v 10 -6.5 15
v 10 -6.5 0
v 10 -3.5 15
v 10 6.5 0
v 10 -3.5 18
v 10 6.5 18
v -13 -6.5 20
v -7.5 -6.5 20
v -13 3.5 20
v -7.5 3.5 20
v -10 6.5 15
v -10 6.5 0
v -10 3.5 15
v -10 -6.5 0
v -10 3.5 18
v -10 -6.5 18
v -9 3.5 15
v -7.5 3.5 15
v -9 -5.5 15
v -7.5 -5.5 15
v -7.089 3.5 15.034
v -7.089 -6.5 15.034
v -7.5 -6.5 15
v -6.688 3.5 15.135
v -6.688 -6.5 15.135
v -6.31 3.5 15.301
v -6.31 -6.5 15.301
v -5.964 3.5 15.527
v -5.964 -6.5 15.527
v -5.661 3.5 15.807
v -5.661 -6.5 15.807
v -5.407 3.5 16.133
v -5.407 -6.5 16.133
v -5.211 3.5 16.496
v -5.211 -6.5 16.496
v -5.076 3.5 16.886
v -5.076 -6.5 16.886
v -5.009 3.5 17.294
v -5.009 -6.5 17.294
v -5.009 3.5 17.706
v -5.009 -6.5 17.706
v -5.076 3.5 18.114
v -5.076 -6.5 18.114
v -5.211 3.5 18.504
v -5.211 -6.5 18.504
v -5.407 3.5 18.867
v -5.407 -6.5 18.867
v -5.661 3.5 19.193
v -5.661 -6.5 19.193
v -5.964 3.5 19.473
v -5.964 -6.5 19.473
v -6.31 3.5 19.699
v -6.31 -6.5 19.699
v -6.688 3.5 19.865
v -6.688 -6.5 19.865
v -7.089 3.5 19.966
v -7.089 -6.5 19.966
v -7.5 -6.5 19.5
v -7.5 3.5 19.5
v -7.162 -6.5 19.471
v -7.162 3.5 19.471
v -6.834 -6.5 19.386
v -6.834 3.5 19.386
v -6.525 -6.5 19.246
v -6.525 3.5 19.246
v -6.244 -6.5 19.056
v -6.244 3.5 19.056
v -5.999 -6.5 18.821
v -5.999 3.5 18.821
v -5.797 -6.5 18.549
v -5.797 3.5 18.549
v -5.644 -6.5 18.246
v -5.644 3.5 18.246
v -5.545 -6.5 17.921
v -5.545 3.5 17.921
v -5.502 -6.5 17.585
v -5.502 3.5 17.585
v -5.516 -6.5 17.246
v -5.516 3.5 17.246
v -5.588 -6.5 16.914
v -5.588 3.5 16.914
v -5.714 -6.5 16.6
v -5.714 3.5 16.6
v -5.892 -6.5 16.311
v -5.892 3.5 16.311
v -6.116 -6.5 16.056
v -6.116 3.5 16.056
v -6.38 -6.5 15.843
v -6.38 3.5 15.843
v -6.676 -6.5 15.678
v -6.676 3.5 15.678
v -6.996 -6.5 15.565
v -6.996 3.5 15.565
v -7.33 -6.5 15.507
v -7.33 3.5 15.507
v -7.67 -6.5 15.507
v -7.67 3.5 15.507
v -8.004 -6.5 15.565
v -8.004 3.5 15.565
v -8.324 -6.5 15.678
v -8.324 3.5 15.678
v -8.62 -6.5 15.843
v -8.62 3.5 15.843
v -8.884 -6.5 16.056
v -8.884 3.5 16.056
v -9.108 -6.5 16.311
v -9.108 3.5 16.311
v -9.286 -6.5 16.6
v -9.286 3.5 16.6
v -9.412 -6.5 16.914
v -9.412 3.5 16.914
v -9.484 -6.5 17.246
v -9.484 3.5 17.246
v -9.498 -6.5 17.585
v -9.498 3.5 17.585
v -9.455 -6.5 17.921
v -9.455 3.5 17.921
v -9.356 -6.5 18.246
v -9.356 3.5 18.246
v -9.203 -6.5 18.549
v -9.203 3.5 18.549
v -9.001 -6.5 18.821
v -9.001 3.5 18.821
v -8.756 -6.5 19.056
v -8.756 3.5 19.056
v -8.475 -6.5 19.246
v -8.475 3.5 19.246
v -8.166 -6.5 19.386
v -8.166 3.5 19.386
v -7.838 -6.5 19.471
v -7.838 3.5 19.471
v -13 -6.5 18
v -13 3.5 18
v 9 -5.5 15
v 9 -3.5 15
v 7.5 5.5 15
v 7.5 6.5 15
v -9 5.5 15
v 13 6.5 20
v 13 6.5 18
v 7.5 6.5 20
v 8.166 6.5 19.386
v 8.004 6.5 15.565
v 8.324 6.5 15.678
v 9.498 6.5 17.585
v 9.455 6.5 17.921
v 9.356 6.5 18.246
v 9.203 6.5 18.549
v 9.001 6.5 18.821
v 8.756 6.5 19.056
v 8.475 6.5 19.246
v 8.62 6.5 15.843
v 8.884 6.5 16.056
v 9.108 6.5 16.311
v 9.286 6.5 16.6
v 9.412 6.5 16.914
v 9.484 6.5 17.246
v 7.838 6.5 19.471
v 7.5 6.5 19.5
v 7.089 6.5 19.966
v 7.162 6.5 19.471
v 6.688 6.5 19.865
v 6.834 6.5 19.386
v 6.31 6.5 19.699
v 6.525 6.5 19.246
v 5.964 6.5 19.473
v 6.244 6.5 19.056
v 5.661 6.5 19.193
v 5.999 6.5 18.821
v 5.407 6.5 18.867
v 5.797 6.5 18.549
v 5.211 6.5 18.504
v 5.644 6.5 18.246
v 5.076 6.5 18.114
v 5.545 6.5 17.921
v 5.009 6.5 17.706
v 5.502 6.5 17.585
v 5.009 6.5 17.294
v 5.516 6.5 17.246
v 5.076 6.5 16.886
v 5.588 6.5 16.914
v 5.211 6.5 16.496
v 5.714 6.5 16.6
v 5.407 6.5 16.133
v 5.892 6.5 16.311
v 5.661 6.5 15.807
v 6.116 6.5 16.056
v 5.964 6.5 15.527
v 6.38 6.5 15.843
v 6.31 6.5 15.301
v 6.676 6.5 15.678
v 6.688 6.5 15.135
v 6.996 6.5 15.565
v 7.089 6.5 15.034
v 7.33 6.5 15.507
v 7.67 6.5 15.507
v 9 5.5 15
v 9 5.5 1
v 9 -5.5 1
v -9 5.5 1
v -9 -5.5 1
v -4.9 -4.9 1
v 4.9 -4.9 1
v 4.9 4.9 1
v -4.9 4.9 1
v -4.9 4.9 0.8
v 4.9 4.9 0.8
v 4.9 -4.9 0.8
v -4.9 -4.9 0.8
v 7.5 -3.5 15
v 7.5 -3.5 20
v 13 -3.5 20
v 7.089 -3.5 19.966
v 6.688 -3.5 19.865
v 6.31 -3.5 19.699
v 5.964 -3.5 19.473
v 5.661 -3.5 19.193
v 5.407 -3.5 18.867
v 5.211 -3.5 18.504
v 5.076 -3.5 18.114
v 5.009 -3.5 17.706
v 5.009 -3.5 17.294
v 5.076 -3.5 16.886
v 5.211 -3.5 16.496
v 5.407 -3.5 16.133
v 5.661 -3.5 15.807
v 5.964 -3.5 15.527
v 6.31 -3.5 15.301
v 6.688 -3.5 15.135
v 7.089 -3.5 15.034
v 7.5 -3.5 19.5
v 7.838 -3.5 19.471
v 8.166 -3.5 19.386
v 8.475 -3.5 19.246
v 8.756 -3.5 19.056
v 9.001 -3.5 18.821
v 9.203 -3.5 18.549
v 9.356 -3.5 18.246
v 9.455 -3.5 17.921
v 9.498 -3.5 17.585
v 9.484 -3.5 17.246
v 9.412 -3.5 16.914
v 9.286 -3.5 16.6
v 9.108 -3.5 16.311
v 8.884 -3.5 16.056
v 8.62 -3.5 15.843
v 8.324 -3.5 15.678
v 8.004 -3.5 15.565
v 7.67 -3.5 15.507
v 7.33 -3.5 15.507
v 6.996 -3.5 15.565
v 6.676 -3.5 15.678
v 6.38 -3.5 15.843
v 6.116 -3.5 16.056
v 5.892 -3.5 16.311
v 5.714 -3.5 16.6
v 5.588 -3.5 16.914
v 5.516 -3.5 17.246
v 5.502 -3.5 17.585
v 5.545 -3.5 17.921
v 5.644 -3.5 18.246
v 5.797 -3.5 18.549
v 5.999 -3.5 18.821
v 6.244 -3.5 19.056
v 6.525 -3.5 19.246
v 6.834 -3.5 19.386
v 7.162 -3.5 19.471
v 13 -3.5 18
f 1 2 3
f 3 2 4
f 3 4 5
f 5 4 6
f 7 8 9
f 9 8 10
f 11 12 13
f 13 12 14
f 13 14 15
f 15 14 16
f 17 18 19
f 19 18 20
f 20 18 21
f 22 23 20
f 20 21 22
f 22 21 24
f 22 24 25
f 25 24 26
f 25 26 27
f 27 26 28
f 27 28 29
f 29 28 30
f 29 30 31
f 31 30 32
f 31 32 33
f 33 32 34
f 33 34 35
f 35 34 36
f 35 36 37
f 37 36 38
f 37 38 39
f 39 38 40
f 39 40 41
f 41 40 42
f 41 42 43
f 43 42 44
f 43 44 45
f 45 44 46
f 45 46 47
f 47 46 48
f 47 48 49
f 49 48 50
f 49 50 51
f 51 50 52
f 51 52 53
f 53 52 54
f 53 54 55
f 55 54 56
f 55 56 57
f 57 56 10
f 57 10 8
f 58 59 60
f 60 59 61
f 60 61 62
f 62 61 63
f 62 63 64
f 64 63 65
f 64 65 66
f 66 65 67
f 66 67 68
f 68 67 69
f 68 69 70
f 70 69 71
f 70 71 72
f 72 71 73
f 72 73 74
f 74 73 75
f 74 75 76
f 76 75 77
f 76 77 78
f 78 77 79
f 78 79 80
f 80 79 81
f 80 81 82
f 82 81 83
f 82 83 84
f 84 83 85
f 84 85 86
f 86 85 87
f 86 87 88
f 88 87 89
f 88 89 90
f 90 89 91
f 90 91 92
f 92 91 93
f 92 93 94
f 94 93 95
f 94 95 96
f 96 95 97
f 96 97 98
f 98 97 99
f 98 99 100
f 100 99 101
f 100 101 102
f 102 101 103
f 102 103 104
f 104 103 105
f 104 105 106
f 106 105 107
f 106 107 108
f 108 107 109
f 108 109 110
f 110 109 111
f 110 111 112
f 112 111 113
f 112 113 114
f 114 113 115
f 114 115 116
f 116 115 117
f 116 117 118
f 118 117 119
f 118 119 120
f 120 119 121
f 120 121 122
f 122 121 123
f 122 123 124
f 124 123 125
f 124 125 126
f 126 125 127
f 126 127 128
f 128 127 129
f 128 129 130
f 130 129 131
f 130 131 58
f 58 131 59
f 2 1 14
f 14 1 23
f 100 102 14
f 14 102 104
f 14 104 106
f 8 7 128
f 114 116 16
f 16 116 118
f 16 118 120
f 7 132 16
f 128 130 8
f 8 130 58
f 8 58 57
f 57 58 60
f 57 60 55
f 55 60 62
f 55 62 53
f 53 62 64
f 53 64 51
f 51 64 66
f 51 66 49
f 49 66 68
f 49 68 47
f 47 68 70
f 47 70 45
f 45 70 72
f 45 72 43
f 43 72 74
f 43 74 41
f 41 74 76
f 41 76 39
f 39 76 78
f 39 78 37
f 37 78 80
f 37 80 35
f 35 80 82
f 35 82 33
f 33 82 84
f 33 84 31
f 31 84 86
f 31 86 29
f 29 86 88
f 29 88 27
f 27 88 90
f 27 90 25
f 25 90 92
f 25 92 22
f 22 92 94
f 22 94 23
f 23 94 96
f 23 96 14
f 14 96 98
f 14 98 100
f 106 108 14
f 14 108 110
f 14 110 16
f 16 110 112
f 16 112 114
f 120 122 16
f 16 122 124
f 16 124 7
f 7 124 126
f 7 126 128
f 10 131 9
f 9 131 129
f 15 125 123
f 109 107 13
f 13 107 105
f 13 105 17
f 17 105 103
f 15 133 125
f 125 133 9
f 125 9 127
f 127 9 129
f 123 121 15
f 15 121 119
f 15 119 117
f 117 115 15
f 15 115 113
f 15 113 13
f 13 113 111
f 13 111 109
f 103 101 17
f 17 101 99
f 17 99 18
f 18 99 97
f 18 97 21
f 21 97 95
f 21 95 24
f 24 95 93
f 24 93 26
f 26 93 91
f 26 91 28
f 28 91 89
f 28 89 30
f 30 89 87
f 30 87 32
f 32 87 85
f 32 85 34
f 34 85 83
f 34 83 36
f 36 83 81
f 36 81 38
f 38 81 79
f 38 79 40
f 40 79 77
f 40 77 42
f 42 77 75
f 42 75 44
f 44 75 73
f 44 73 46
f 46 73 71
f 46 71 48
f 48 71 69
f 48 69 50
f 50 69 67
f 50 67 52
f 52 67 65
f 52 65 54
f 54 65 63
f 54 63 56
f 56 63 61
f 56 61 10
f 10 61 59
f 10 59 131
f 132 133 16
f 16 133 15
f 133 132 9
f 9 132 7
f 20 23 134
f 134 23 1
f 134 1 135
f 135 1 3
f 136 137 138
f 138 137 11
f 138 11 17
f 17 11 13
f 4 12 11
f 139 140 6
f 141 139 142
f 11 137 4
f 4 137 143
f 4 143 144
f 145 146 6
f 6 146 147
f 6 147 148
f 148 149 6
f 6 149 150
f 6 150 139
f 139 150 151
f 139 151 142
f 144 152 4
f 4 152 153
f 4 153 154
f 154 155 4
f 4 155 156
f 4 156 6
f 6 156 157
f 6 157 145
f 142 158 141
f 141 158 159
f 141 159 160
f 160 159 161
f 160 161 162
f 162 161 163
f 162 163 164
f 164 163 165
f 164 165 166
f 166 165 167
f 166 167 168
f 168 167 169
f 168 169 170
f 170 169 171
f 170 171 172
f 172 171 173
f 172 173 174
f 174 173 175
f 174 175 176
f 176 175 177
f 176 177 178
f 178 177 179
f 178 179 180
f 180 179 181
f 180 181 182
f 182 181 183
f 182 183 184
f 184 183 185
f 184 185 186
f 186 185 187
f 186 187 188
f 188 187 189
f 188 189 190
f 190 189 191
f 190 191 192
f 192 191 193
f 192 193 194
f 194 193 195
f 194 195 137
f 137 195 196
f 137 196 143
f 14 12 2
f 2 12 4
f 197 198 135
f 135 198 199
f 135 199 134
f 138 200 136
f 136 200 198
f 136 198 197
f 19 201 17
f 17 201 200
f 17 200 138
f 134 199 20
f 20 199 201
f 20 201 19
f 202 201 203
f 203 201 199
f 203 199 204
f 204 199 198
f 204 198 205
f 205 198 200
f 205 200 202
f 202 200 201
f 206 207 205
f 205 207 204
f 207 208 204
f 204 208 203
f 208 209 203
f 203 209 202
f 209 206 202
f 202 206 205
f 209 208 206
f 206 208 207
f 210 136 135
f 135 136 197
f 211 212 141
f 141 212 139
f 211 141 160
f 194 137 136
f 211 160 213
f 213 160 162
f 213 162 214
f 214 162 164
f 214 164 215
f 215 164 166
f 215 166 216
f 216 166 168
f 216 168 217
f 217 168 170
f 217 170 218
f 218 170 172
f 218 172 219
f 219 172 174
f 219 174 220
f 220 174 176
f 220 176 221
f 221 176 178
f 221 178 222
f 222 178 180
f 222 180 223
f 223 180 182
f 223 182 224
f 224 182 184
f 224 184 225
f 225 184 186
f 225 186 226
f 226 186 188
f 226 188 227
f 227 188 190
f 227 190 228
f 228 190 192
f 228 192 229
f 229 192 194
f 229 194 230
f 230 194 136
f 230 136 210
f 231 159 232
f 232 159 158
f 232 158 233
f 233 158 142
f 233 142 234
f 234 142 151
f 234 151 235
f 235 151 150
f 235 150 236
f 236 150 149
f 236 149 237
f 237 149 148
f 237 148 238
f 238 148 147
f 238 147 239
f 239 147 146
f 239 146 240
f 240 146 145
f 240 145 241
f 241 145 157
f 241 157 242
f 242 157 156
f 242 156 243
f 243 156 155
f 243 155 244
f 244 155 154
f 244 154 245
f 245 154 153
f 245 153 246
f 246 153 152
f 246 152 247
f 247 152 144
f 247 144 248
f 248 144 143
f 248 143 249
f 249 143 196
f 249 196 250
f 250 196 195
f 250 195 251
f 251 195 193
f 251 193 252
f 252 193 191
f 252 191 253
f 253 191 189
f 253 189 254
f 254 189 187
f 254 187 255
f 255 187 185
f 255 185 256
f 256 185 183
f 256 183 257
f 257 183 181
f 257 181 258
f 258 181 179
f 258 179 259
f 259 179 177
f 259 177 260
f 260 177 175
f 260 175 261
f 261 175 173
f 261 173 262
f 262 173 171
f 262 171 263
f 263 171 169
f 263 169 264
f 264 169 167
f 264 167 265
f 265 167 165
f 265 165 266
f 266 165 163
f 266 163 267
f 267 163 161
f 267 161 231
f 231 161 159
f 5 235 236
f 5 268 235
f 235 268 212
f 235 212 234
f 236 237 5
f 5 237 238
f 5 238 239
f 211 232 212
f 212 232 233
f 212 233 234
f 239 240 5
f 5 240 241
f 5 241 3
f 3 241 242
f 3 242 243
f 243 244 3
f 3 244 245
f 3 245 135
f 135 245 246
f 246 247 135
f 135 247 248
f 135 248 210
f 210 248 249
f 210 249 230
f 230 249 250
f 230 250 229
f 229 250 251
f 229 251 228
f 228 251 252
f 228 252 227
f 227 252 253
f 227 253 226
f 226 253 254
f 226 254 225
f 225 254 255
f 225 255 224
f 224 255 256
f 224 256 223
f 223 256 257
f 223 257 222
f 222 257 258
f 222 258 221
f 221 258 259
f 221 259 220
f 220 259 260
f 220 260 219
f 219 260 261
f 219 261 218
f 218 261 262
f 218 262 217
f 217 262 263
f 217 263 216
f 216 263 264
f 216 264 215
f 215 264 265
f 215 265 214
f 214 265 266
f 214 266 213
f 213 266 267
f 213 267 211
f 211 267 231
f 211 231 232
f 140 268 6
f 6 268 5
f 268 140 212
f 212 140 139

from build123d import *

# Parameters (mm, degrees)
SKETCH_1_W          = 20
SKETCH_1_H          = 13
EXTRUDE_1_DEPTH     = 15
SHELL_1_T           = -1
SKETCH_2_R          = 2.5
SKETCH_2_R_2        = 2
EXTRUDE_4_DEPTH     = 10
SKETCH_3_R          = 4.9
CUT_EXTRUDE_1_DEPTH = 0.2
SKETCH_9_R          = 2.5
SKETCH_9_R_2        = 2
EXTRUDE_8_DEPTH     = 10
SKETCH_6_W          = 2
SKETCH_6_H          = 10
EXTRUDE_10_DEPTH    = 3
SKETCH_10_W         = 2
SKETCH_10_H         = 10
EXTRUDE_11_DEPTH    = 3


with BuildPart() as part:
    # 스케치1 → 보스-돌출1 (new body)
    with BuildSketch(Plane.XY):
        Rectangle(SKETCH_1_W, SKETCH_1_H)
    extrude(amount=EXTRUDE_1_DEPTH)

    # 쉘1
    shell_1_openings = [part.faces().sort_by_distance(p)[0] for p in [
        (0, 0, 15),
    ]]
    offset(amount=SHELL_1_T, openings=shell_1_openings, kind=Kind.INTERSECTION)

    # 스케치3 → 컷-돌출1 (cut)
    with BuildSketch(Plane.XY.offset(1)):
        with BuildLine():
            Line((4.9, 4.9), (2.1e-08, 4.9))
            ThreePointArc((2.1e-08, 4.9), (3.464823235, 3.46482322), (4.9, 0))
            Line((4.9, 0), (4.9, 4.9))
        make_face()
        with BuildLine():
            Line((2.1e-08, 4.9), (-4.9, 4.9))
            Line((-4.9, 4.9), (-4.9, 7e-09))
            ThreePointArc((-4.9, 7e-09), (-3.464823218, 3.464823238), (2.1e-08, 4.9))
        make_face()
        Circle(SKETCH_3_R)
        with BuildLine():
            ThreePointArc((0, -4.9), (-3.46482323, -3.464823225), (-4.9, 7e-09))
            Line((-4.9, 7e-09), (-4.9, -4.9))
            Line((-4.9, -4.9), (0, -4.9))
        make_face()
        with BuildLine():
            Line((4.9, -4.9), (4.9, 0))
            ThreePointArc((4.9, 0), (3.464823228, -3.464823228), (0, -4.9))
            Line((0, -4.9), (4.9, -4.9))
        make_face()
    extrude(amount=-CUT_EXTRUDE_1_DEPTH, mode=Mode.SUBTRACT)

    # 스케치9 → 보스-돌출8 (add)
    # profile 1 of 3: a face of its own
    with BuildSketch(Plane(origin=(0, 6.5, 0), x_dir=(1, 0, 0), z_dir=(0, 1, 0))):
        with BuildLine():
            Line((10, -17.5), (10, -15))
            Line((10, -15), (7.5, -15))
            ThreePointArc((7.5, -15), (9.267766953, -15.732233047), (10, -17.5))
        make_face()
    # profile 2 of 3: a face of its own
    with BuildSketch(Plane(origin=(0, 6.5, 0), x_dir=(1, 0, 0), z_dir=(0, 1, 0))):
        with BuildLine():
            Line((10, -20), (10, -17.5))
            ThreePointArc((10, -17.5), (9.267766953, -19.267766953), (7.5, -20))
            Line((7.5, -20), (10, -20))
        make_face()
    # profile 3 of 3: a face of its own
    with BuildSketch(Plane(origin=(0, 6.5, 0), x_dir=(1, 0, 0), z_dir=(0, 1, 0))):
        with Locations((7.5, -17.5)):
            Circle(SKETCH_9_R)
        with Locations(Location((7.5, -17.5, 0), (0, 0, 270))):
            Circle(SKETCH_9_R_2, mode=Mode.SUBTRACT)
    extrude(amount=-EXTRUDE_8_DEPTH)


with BuildPart() as body_2:
    # 스케치2 → 보스-돌출4 (new body)
    # profile 1 of 3: a face of its own
    with BuildSketch(Plane(origin=(0, 3.5, 0), x_dir=(1, 0, 0), z_dir=(0, 1, 0))):
        with BuildLine():
            ThreePointArc((-7.5, -20), (-9.267766953, -19.267766953), (-10, -17.5))
            Line((-10, -17.5), (-10, -20))
            Line((-10, -20), (-7.5, -20))
        make_face()
    # profile 2 of 3: a face of its own
    with BuildSketch(Plane(origin=(0, 3.5, 0), x_dir=(1, 0, 0), z_dir=(0, 1, 0))):
        with Locations((-7.5, -17.5)):
            Circle(SKETCH_2_R)
        with Locations(Location((-7.5, -17.5, 0), (0, 0, 270))):
            Circle(SKETCH_2_R_2, mode=Mode.SUBTRACT)
    # profile 3 of 3: a face of its own
    with BuildSketch(Plane(origin=(0, 3.5, 0), x_dir=(1, 0, 0), z_dir=(0, 1, 0))):
        with BuildLine():
            Line((-7.5, -15), (-10, -15))
            Line((-10, -15), (-10, -17.5))
            ThreePointArc((-10, -17.5), (-9.267766953, -15.732233047), (-7.5, -15))
        make_face()
    extrude(amount=-EXTRUDE_4_DEPTH)


    add(part.part)  # 보스-돌출10 merges part
    # 스케치6 → 보스-돌출10 (add)
    with BuildSketch(Plane.ZY.offset(10)):
        with Locations((19, -1.5)):
            Rectangle(SKETCH_6_W, SKETCH_6_H)
    extrude(amount=EXTRUDE_10_DEPTH)

    # 스케치10 → 보스-돌출11 (add)
    with BuildSketch(Plane(origin=(10, 0, 0), x_dir=(0, 0, -1), z_dir=(1, 0, 0))):
        with Locations((-19, 1.5)):
            Rectangle(SKETCH_10_W, SKETCH_10_H)
    extrude(amount=EXTRUDE_11_DEPTH)


solid = body_2.part
